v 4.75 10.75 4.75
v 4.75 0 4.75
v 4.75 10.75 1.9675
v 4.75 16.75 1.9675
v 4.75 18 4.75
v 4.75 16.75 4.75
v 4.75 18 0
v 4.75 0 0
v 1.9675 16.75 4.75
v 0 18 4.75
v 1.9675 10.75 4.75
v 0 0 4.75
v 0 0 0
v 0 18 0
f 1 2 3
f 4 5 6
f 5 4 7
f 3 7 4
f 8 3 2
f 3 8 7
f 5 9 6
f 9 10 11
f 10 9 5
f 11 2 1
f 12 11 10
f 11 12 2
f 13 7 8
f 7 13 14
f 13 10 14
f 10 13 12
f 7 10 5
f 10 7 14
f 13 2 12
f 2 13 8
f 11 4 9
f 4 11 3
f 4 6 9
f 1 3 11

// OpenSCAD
hook_side = 5 - 0.25;
hook_width = 18;
hook_plain_width = 6;
hook_plain_offset = 2.5;

hole_offset = sqrt(pow(hook_side * 2, 2) / 2);

difference() {
    cube([hook_side, hook_width, hook_side]);
    translate([0, hook_width - hook_plain_offset - hook_side, hole_offset]) 
        rotate (45, [0, 1, 0])
            cube([hook_side * 2, hook_plain_width, hook_side * 2]);
}
